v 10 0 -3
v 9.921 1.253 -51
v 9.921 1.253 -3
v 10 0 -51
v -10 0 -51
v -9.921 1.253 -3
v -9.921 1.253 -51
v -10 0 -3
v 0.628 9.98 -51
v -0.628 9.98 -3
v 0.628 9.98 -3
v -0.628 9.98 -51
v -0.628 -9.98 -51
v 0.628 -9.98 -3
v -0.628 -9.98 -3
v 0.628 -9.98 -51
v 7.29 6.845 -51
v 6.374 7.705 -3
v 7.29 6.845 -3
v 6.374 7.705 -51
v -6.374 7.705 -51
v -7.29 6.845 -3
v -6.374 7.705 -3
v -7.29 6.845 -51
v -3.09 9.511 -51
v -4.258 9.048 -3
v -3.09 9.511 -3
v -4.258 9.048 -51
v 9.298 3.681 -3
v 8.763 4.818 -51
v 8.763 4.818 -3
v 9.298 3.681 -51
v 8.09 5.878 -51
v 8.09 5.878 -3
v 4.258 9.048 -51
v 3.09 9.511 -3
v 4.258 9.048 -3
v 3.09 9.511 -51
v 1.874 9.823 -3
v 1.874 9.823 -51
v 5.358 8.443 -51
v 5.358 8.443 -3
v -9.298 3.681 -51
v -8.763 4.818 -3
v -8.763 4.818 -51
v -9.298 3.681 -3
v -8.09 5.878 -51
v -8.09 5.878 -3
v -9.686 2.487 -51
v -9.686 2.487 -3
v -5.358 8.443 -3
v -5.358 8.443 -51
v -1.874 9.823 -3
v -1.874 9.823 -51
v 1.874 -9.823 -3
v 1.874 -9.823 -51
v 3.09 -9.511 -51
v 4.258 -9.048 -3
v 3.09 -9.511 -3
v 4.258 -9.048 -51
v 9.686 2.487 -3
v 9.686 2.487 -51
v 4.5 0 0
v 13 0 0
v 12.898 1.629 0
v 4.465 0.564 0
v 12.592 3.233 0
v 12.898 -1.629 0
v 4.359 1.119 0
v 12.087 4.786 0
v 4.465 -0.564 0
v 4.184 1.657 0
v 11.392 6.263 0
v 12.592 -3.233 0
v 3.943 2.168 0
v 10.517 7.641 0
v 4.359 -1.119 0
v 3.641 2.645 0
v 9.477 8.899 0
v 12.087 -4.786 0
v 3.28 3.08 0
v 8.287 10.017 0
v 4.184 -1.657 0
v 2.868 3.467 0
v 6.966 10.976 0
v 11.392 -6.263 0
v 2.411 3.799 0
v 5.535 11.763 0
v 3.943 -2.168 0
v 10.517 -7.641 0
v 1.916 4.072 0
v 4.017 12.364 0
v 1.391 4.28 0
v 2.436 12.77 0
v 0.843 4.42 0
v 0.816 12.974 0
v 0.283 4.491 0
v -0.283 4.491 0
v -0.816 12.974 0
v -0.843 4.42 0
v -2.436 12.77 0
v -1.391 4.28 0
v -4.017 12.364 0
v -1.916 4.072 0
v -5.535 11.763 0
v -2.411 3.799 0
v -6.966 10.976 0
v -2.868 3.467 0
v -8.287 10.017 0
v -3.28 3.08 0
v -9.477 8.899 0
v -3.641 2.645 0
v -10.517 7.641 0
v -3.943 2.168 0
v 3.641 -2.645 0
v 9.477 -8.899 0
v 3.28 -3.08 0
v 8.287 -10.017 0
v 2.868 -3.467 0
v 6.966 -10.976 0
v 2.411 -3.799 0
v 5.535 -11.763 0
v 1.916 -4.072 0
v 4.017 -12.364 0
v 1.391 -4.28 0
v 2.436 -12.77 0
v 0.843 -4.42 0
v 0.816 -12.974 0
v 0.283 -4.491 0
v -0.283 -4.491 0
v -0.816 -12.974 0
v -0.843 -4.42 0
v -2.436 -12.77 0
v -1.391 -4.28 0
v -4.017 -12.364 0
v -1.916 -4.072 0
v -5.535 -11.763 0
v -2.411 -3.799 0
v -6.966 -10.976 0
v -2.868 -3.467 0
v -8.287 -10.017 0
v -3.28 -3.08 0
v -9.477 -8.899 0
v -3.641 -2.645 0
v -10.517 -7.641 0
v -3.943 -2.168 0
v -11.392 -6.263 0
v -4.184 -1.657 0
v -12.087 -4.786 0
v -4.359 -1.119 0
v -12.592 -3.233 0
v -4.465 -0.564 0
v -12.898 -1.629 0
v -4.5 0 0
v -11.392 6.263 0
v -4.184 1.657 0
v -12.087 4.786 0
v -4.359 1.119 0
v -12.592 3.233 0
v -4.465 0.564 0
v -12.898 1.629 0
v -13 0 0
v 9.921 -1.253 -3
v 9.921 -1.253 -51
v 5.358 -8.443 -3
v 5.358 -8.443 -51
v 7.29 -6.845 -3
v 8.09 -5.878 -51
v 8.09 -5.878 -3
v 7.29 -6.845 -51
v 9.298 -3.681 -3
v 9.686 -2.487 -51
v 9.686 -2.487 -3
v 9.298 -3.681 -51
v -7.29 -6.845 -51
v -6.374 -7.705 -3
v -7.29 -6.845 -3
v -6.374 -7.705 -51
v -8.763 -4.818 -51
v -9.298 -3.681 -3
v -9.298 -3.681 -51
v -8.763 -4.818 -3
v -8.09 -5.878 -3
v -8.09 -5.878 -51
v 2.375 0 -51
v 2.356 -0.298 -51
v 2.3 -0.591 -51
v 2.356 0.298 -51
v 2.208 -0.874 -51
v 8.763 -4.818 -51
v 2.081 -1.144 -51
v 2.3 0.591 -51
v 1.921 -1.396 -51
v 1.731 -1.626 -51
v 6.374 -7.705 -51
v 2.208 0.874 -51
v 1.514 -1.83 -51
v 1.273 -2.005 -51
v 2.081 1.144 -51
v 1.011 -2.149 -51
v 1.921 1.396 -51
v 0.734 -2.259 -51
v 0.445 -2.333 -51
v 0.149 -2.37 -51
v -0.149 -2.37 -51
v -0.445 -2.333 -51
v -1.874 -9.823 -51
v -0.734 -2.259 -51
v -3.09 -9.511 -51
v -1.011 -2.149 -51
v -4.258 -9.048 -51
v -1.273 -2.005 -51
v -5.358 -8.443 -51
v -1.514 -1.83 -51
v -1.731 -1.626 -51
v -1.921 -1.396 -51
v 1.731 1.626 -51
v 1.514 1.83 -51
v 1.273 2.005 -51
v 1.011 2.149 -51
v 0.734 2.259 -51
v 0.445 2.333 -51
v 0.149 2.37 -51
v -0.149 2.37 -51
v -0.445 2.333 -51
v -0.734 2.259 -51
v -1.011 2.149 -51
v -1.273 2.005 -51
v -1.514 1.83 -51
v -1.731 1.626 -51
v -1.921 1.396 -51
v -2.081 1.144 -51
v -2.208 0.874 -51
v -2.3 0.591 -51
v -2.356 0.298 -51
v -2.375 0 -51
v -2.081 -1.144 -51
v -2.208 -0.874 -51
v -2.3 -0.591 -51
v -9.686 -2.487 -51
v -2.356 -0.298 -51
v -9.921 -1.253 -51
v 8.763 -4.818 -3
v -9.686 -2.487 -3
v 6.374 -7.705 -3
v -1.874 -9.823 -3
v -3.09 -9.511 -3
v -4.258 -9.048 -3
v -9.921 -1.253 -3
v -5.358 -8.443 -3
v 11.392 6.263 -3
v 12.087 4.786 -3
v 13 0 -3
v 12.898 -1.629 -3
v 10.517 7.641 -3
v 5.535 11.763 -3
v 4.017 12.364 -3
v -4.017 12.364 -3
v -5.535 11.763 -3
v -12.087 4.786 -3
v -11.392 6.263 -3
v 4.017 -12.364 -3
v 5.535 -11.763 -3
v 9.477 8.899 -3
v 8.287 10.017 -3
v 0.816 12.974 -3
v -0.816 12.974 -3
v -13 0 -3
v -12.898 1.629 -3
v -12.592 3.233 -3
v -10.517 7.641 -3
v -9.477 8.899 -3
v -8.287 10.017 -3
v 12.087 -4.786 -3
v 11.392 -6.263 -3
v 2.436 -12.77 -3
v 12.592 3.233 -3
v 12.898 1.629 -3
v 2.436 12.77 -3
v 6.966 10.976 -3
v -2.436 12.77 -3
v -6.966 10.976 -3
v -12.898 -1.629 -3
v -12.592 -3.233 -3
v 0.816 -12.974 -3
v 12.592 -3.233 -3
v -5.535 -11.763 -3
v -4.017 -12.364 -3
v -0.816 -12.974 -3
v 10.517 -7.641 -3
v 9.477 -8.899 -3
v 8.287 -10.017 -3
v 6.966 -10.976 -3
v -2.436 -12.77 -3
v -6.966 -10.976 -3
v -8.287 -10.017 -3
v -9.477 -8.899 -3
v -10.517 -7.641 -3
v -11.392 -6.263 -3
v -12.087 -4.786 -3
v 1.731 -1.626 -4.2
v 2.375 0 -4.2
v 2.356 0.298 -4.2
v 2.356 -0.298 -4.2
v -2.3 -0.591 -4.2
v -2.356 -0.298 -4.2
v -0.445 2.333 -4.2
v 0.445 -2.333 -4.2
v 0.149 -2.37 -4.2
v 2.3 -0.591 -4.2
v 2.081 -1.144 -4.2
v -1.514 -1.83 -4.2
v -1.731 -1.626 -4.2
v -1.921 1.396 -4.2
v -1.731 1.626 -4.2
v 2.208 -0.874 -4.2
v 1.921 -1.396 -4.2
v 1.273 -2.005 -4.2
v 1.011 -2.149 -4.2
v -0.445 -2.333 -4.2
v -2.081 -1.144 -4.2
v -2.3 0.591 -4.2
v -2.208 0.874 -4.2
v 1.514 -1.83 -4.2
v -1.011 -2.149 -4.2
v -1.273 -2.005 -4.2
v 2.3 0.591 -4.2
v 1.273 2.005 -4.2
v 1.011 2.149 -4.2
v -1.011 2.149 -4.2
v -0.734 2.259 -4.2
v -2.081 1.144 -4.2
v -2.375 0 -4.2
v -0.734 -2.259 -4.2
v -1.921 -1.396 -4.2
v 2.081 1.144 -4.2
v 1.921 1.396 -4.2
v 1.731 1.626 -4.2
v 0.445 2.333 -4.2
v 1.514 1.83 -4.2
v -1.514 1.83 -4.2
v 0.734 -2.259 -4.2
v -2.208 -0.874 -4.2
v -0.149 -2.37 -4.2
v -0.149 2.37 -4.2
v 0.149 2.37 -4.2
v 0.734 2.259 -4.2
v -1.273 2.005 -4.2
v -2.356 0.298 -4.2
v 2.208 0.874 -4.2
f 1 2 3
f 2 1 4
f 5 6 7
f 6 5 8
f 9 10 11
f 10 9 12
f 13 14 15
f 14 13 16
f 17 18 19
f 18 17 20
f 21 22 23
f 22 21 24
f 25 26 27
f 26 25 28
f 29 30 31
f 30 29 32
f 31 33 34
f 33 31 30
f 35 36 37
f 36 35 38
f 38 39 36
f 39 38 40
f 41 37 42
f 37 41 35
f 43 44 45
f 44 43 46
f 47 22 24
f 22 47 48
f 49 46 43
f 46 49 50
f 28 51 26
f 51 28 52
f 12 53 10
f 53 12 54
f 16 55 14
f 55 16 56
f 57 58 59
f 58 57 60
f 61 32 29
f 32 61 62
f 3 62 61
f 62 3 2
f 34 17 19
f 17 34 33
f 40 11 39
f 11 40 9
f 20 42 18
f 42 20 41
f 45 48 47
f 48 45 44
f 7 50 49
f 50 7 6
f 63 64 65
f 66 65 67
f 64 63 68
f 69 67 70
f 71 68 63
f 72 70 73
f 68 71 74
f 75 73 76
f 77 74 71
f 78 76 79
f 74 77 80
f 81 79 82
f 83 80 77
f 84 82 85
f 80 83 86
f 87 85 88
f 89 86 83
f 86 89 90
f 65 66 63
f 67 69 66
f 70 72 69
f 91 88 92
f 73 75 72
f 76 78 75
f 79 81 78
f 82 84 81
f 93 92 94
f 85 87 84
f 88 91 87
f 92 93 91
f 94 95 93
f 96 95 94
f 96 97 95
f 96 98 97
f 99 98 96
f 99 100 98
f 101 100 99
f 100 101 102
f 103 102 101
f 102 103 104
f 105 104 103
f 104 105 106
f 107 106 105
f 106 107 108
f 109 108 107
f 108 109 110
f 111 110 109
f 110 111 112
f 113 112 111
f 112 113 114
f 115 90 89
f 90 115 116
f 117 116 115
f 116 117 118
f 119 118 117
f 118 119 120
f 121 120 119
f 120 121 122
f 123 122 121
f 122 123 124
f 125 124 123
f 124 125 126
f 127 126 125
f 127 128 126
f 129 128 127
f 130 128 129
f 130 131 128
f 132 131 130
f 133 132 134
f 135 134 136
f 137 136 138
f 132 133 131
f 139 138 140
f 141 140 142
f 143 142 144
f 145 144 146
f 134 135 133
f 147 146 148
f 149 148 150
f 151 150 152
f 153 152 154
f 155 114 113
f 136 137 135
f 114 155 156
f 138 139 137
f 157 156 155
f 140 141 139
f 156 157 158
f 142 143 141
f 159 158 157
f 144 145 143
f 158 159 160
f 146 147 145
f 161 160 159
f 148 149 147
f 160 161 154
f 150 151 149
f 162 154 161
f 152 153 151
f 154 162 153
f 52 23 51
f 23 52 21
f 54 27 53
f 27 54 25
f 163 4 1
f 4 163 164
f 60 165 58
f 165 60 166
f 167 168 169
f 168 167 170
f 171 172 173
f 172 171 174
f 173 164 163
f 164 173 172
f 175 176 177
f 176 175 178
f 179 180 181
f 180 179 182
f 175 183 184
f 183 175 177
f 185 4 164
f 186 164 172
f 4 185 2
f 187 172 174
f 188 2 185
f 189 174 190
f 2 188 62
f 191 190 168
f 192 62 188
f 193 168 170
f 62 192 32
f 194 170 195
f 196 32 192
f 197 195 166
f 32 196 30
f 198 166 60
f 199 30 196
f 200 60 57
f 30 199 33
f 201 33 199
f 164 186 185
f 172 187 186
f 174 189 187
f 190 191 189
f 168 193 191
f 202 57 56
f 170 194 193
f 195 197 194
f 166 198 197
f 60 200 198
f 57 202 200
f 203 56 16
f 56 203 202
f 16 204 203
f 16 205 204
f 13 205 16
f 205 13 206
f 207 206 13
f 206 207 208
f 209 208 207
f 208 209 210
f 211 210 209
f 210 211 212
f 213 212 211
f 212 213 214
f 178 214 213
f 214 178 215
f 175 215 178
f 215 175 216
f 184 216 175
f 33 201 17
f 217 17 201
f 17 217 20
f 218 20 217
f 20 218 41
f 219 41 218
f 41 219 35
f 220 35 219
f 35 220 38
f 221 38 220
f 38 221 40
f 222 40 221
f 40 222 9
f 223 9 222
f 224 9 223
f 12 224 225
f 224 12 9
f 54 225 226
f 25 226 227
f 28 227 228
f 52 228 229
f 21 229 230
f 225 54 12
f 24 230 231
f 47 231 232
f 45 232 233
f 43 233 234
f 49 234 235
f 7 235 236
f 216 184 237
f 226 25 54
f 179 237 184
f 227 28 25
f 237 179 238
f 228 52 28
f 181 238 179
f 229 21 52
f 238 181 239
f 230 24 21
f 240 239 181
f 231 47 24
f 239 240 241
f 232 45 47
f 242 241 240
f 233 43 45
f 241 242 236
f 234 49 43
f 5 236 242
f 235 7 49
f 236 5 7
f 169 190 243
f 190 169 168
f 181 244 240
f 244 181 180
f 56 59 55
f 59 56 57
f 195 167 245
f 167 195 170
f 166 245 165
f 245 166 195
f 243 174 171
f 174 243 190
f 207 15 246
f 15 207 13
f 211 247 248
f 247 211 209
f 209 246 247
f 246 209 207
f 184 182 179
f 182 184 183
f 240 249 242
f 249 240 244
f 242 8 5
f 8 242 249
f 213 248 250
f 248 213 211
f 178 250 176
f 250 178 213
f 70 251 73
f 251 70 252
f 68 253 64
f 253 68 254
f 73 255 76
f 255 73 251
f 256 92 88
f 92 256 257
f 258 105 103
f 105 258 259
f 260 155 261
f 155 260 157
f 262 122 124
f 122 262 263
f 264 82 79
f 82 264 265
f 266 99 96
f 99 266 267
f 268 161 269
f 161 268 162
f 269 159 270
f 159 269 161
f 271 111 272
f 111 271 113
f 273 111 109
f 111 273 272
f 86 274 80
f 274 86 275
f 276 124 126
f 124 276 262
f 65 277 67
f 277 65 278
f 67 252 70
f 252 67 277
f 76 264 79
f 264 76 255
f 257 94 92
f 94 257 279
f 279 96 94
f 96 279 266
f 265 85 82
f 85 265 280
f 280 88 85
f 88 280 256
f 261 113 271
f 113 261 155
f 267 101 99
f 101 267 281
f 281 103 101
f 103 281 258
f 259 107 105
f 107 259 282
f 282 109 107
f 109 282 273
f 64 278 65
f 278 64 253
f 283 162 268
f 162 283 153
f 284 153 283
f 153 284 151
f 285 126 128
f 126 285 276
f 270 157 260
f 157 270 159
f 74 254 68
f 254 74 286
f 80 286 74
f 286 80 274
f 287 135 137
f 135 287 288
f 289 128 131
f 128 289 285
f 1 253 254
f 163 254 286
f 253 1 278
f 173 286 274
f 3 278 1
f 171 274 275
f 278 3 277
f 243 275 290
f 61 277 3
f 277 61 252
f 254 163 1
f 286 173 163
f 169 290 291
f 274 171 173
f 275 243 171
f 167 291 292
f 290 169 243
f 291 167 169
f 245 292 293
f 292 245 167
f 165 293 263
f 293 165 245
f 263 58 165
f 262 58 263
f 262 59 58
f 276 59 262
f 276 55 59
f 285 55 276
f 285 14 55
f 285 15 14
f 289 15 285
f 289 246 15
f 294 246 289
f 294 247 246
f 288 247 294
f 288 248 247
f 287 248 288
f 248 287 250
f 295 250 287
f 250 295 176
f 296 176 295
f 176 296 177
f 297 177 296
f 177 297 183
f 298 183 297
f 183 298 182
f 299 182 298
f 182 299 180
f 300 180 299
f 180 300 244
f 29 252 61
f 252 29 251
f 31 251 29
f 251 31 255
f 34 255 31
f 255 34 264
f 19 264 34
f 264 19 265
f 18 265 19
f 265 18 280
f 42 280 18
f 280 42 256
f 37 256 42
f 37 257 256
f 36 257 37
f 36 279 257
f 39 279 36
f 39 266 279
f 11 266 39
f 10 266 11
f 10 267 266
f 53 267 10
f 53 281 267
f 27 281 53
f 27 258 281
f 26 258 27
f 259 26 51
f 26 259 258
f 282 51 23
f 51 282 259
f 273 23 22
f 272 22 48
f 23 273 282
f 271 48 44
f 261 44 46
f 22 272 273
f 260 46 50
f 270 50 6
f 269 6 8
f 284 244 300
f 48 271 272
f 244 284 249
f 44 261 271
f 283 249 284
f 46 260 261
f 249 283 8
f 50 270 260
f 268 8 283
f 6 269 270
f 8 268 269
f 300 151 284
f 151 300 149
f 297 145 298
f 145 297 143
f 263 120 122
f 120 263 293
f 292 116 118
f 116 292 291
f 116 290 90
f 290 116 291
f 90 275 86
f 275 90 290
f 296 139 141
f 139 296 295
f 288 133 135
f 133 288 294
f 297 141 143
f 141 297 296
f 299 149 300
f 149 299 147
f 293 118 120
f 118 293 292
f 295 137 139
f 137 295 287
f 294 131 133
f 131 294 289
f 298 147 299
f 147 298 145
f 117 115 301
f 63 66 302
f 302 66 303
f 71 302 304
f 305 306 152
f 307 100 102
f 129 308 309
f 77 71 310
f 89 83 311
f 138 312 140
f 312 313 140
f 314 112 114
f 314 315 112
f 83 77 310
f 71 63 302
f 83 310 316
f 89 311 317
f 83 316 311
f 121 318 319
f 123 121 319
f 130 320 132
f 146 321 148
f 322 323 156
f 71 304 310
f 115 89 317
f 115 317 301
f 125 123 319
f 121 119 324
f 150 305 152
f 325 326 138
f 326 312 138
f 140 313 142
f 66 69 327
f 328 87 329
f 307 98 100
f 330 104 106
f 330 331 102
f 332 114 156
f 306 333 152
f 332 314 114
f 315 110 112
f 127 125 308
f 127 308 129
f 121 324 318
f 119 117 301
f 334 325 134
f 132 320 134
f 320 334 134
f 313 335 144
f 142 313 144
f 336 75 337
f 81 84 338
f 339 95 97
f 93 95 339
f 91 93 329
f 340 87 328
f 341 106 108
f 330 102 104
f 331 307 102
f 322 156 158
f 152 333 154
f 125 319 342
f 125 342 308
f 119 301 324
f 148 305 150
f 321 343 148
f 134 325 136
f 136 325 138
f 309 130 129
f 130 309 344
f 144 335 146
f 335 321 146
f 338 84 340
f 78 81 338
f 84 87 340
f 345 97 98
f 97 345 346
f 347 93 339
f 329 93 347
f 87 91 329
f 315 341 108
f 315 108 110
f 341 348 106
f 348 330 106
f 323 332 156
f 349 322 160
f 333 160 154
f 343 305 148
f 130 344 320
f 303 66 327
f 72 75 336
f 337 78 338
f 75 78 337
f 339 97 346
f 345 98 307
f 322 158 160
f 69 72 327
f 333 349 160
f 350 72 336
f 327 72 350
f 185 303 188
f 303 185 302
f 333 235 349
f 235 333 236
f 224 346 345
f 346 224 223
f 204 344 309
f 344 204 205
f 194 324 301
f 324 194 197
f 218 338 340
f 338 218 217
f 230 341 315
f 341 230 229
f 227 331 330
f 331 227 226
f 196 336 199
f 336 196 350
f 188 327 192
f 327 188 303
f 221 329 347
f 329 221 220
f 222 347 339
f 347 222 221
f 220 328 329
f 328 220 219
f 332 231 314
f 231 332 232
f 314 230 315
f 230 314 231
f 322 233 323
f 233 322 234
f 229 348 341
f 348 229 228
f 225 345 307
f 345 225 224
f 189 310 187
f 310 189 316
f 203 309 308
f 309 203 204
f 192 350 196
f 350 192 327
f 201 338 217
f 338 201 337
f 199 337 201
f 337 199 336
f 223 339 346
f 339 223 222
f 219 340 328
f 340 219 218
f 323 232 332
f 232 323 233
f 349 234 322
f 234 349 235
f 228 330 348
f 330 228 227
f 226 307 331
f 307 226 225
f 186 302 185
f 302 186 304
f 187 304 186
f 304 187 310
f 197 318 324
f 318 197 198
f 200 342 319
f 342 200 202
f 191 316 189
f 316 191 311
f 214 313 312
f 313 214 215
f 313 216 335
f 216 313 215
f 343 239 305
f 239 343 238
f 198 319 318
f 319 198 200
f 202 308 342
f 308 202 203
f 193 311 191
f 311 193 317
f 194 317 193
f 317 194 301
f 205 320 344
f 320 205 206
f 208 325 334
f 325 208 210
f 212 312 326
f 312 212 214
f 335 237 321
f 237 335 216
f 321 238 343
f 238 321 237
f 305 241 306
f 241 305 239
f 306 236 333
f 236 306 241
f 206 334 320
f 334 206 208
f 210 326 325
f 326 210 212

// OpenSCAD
$fn = 50;


difference() {
	union() {
		translate(v = [0, 0, -51.0000000000]) {
			cylinder(h = 51, r = 10.0000000000);
		}
		translate(v = [0, 0, -3.0000000000]) {
			cylinder(h = 3, r = 13.0000000000);
		}
	}
	union() {
		translate(v = [0, 0, 0]) {
			rotate(a = [0, 0, 0]) {
				difference() {
					union() {
						#translate(v = [0, 0, -51.0000000000]) {
							cylinder(h = 51, r = 2.2500000000);
						}
						#translate(v = [0, 0, -4.2000000000]) {
							cylinder(h = 4.2000000000, r1 = 2.3750000000, r2 = 4.5000000000);
						}
						#translate(v = [0, 0, -51.0000000000]) {
							cylinder(h = 51, r = 2.3750000000);
						}
						#translate(v = [0, 0, -51.0000000000]) {
							cylinder(h = 51, r = 2.2500000000);
						}
					}
					union();
				}
			}
		}
	}
}
